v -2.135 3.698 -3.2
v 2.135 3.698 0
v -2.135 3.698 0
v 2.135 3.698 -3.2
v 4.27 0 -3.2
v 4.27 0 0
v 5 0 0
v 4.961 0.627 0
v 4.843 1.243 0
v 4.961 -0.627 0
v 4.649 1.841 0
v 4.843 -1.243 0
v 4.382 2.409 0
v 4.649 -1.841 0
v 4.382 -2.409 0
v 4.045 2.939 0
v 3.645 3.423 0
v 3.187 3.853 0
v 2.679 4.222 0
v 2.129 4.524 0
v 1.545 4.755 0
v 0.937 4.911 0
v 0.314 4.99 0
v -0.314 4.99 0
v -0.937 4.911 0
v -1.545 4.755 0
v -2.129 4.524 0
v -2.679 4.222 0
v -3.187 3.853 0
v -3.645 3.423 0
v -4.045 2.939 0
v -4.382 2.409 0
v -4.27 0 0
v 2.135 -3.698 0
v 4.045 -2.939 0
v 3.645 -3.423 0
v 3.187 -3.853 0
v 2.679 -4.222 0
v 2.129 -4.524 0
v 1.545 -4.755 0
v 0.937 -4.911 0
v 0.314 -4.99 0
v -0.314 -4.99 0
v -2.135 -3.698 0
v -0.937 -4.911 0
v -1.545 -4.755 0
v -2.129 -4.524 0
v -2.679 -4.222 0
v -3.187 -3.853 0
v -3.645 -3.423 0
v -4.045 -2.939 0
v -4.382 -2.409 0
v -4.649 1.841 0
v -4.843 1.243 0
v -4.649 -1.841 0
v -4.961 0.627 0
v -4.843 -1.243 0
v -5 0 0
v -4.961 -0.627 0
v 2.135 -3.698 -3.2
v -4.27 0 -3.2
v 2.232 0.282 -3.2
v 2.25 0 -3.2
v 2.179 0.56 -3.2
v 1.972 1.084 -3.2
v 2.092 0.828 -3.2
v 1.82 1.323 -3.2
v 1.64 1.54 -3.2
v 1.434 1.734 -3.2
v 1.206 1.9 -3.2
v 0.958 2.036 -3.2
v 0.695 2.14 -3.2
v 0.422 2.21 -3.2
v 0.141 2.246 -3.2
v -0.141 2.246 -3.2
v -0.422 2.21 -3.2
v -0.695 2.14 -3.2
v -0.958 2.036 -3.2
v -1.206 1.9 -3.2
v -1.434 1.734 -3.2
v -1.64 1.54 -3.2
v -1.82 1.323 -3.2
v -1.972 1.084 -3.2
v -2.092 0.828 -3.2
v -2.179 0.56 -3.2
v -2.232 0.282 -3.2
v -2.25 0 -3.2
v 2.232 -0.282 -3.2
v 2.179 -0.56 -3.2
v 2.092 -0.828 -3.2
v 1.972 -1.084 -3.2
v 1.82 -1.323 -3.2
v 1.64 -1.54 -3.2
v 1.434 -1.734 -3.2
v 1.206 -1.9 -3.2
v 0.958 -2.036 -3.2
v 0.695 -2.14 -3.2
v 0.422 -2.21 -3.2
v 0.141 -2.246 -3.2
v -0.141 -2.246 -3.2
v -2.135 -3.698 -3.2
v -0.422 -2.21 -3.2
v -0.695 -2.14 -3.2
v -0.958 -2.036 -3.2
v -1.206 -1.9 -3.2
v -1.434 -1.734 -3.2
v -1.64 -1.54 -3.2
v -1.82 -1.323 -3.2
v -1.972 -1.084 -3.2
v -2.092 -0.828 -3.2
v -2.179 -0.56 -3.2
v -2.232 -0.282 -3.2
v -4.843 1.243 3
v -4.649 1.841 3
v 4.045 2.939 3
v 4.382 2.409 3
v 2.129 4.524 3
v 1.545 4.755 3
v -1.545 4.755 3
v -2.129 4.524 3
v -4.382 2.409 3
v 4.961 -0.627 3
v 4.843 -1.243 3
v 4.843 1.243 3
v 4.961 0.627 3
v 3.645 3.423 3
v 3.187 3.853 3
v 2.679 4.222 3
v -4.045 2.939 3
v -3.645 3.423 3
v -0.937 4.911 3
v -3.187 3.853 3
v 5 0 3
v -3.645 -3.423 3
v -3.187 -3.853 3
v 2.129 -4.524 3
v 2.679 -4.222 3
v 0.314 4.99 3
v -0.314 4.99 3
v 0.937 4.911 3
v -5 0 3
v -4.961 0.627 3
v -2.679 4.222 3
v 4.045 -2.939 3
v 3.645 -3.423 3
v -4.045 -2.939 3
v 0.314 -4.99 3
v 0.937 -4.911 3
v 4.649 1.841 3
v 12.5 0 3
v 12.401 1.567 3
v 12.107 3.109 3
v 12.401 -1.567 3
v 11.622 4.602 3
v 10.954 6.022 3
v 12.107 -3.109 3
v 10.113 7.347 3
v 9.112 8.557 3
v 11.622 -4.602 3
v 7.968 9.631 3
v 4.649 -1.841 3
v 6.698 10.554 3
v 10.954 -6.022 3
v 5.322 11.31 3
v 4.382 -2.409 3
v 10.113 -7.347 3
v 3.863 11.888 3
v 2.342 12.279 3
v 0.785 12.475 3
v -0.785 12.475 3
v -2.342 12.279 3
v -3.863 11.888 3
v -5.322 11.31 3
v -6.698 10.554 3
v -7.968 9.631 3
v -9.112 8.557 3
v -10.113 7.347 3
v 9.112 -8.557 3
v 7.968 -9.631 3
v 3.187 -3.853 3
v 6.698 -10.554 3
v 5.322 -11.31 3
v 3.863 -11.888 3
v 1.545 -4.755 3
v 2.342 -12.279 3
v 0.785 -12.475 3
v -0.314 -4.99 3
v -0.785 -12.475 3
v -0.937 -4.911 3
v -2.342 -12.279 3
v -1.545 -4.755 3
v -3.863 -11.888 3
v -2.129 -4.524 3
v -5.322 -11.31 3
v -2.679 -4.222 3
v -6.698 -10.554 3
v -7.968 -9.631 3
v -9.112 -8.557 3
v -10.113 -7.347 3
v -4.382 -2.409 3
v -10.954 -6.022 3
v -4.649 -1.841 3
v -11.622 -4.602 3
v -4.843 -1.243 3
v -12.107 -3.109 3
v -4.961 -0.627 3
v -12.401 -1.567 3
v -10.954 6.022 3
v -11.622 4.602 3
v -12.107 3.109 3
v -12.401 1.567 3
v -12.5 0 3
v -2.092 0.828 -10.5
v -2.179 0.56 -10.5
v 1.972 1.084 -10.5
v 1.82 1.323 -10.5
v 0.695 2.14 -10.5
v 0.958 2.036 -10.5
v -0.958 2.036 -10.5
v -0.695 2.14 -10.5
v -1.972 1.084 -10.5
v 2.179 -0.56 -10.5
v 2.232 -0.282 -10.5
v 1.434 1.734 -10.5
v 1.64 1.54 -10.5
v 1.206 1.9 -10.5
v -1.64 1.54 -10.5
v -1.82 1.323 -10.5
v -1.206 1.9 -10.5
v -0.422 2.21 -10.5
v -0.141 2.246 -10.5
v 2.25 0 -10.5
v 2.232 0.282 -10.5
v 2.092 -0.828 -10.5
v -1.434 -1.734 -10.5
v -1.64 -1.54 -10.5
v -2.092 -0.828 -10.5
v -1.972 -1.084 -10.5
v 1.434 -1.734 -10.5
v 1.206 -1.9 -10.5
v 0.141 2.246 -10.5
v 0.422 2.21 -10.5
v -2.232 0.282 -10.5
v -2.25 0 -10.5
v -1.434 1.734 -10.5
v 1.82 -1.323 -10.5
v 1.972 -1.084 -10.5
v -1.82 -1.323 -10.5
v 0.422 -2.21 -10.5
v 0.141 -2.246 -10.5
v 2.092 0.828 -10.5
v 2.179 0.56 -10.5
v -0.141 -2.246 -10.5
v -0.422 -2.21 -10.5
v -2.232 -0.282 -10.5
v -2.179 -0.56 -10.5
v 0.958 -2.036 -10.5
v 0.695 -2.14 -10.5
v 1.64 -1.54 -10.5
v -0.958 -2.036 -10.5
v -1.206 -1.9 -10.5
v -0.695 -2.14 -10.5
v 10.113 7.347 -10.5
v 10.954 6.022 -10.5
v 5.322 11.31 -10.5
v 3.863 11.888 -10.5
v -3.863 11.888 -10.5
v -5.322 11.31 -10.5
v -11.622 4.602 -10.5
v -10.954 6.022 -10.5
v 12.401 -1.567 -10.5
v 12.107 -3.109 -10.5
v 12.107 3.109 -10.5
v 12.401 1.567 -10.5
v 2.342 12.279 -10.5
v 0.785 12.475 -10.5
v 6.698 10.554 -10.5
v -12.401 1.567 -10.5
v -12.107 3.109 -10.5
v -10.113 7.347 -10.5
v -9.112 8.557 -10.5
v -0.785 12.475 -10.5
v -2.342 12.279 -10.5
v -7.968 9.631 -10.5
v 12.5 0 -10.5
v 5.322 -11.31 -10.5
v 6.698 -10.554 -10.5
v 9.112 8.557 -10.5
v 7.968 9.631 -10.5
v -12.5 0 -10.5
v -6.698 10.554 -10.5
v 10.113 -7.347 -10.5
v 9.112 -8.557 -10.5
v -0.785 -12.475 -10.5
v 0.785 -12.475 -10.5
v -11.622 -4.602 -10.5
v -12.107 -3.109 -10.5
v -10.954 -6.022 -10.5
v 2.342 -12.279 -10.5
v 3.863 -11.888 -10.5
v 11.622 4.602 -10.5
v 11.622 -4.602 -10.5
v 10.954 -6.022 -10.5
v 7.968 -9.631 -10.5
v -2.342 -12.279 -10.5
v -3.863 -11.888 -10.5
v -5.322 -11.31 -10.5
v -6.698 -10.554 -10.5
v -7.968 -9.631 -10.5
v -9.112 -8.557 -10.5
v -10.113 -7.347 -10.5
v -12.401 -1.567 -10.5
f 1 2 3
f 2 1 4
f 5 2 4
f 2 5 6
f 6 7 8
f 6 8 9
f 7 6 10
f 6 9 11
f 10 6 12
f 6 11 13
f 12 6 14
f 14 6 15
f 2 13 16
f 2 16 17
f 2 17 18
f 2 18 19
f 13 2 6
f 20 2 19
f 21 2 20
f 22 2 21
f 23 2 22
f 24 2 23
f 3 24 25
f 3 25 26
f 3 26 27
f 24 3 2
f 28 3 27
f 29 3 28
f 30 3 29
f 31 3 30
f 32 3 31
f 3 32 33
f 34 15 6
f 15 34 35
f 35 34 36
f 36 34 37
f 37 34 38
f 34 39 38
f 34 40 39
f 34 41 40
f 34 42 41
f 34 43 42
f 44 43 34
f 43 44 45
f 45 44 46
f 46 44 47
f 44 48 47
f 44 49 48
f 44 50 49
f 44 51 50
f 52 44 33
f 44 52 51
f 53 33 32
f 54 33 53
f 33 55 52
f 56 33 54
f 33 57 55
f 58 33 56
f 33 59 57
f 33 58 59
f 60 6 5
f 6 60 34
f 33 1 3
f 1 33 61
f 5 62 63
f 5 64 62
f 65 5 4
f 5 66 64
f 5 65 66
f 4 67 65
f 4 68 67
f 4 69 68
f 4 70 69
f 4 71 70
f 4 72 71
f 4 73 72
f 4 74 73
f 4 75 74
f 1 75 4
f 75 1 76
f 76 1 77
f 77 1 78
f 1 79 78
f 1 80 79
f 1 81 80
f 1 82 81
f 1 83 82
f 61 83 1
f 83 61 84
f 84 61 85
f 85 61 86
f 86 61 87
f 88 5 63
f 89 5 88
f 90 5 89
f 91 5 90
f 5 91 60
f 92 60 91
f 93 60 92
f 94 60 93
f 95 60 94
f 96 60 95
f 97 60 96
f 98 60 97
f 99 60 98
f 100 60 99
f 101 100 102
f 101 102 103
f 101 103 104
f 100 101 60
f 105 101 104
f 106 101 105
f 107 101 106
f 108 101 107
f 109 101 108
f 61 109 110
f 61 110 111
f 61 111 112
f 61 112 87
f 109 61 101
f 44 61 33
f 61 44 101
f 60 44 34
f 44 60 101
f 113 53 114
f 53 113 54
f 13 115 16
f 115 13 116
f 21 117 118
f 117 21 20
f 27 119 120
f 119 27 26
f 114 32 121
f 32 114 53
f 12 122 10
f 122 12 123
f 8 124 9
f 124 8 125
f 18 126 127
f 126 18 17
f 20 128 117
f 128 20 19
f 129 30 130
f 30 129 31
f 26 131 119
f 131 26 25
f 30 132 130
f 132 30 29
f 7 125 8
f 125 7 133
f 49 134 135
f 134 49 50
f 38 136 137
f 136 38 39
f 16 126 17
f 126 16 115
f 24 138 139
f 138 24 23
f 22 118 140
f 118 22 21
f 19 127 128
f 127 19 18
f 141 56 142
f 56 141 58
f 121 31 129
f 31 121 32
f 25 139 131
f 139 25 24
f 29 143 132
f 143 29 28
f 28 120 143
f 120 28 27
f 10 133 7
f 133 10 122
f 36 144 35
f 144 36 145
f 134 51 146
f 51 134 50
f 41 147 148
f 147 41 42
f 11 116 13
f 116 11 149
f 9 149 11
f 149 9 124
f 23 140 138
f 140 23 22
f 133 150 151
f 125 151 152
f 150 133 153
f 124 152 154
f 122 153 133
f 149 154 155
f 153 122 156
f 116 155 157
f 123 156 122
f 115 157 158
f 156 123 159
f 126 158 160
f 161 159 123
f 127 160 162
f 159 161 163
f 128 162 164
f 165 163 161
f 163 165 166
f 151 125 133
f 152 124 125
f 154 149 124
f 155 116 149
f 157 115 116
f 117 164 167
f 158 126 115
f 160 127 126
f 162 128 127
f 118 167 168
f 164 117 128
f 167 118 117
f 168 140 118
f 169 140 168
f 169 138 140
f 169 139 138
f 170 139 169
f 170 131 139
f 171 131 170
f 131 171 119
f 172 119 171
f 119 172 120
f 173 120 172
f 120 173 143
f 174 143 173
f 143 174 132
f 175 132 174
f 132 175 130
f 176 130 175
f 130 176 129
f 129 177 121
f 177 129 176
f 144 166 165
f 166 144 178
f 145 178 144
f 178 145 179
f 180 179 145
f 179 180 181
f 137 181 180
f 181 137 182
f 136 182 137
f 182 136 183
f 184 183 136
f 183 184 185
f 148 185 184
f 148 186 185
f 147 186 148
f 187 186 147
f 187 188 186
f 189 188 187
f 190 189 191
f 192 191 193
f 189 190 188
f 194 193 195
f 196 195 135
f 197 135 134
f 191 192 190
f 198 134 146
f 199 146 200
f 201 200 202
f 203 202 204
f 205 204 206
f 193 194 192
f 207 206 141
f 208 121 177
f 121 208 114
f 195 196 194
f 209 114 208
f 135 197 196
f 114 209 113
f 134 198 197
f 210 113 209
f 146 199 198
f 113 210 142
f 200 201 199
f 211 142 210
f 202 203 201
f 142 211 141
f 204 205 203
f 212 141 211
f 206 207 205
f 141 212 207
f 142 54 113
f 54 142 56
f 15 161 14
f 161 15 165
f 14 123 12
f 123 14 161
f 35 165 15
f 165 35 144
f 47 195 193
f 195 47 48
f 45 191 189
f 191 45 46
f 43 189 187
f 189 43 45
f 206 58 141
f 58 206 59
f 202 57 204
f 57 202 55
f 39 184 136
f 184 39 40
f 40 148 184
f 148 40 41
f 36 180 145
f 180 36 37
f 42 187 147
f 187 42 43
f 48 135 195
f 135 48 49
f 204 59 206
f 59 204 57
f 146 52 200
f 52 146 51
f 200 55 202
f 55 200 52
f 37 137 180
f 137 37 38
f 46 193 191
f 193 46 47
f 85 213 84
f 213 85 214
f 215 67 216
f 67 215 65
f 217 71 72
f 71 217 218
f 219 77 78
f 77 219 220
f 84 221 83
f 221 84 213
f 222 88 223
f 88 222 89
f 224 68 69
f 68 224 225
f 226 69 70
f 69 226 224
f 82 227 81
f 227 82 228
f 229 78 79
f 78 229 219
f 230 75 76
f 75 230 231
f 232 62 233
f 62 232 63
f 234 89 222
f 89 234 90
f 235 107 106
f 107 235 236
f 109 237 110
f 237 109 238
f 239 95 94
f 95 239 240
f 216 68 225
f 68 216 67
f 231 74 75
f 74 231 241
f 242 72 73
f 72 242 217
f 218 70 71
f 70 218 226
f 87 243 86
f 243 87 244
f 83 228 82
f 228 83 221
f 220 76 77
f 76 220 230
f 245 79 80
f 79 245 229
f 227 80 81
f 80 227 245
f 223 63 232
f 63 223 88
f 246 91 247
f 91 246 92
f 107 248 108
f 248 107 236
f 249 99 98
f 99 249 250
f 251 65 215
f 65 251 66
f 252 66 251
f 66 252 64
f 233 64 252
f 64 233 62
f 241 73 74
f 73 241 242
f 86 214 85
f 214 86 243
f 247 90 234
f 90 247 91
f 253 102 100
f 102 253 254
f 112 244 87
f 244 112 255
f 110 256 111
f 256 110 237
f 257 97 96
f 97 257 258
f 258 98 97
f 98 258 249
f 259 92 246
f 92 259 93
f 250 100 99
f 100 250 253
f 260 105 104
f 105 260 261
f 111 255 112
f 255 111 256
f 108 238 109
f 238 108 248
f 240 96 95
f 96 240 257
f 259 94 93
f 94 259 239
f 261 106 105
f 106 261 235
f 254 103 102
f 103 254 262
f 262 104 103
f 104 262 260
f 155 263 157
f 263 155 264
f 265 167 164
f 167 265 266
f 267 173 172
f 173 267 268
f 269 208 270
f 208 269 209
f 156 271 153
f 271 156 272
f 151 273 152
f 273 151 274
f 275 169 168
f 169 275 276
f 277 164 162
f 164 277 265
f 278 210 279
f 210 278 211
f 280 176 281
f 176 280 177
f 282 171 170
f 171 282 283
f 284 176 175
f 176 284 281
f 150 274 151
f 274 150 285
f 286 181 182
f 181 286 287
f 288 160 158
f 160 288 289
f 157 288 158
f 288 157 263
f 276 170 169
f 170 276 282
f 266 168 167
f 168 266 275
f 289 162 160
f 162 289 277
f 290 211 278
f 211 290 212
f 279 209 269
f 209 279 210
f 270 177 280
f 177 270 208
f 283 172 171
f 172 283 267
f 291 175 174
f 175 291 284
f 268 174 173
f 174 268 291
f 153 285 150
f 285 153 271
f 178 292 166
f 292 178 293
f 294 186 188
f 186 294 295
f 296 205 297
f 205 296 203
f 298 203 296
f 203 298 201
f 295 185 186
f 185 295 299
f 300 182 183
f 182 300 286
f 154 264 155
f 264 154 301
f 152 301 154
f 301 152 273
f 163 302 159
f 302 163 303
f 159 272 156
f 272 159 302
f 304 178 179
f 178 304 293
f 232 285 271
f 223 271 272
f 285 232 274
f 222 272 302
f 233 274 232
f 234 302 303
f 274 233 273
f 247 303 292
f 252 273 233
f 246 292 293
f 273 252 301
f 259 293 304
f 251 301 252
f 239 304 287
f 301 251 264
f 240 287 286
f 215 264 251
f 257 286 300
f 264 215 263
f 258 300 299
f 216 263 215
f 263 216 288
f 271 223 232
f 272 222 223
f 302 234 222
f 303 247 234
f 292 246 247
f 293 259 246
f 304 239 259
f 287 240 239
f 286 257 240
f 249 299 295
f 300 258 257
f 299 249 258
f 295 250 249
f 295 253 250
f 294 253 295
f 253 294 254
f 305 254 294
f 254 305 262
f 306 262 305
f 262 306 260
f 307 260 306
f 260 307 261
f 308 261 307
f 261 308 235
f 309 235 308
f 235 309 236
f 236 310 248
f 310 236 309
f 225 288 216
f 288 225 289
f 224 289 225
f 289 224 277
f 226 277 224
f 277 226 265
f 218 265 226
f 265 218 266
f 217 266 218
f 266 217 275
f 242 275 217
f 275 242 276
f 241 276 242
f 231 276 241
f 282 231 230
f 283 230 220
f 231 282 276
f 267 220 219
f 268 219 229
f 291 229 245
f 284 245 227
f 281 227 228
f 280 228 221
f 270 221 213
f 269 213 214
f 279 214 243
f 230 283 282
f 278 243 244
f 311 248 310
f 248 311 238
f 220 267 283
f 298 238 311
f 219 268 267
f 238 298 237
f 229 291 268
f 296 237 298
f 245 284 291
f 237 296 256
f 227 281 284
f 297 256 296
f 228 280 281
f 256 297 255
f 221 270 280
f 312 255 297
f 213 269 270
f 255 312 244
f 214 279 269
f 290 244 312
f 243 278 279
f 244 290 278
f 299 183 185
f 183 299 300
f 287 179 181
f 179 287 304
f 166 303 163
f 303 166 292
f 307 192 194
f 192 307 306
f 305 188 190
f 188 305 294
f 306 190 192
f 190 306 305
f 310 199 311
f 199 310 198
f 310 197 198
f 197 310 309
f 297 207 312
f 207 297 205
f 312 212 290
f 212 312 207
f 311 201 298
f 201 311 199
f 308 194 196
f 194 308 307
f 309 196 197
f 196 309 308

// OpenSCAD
$fn = 50;


difference() {
	union() {
		translate(v = [0, 0, -10.5000000000]) {
			cylinder(h = 13.5000000000, r = 12.5000000000);
		}
	}
	union() {
		translate(v = [0, 0, 0]) {
			rotate(a = [0, 0, 0]) {
				difference() {
					union() {
						translate(v = [0, 0, -3.2000000000]) {
							linear_extrude(height = 3.2000000000) {
								polygon(points = [[4.2698000000, 0.0000000000], [2.1349000000, 3.6977552691], [-2.1349000000, 3.6977552691], [-4.2698000000, 0.0000000000], [-2.1349000000, -3.6977552691], [2.1349000000, -3.6977552691]]);
							}
						}
					}
					union();
				}
			}
		}
		#cylinder(h = 3, r = 5.0000000000);
		#translate(v = [0, 0, -100.0000000000]) {
			cylinder(h = 200, r = 2.2500000000);
		}
	}
}
